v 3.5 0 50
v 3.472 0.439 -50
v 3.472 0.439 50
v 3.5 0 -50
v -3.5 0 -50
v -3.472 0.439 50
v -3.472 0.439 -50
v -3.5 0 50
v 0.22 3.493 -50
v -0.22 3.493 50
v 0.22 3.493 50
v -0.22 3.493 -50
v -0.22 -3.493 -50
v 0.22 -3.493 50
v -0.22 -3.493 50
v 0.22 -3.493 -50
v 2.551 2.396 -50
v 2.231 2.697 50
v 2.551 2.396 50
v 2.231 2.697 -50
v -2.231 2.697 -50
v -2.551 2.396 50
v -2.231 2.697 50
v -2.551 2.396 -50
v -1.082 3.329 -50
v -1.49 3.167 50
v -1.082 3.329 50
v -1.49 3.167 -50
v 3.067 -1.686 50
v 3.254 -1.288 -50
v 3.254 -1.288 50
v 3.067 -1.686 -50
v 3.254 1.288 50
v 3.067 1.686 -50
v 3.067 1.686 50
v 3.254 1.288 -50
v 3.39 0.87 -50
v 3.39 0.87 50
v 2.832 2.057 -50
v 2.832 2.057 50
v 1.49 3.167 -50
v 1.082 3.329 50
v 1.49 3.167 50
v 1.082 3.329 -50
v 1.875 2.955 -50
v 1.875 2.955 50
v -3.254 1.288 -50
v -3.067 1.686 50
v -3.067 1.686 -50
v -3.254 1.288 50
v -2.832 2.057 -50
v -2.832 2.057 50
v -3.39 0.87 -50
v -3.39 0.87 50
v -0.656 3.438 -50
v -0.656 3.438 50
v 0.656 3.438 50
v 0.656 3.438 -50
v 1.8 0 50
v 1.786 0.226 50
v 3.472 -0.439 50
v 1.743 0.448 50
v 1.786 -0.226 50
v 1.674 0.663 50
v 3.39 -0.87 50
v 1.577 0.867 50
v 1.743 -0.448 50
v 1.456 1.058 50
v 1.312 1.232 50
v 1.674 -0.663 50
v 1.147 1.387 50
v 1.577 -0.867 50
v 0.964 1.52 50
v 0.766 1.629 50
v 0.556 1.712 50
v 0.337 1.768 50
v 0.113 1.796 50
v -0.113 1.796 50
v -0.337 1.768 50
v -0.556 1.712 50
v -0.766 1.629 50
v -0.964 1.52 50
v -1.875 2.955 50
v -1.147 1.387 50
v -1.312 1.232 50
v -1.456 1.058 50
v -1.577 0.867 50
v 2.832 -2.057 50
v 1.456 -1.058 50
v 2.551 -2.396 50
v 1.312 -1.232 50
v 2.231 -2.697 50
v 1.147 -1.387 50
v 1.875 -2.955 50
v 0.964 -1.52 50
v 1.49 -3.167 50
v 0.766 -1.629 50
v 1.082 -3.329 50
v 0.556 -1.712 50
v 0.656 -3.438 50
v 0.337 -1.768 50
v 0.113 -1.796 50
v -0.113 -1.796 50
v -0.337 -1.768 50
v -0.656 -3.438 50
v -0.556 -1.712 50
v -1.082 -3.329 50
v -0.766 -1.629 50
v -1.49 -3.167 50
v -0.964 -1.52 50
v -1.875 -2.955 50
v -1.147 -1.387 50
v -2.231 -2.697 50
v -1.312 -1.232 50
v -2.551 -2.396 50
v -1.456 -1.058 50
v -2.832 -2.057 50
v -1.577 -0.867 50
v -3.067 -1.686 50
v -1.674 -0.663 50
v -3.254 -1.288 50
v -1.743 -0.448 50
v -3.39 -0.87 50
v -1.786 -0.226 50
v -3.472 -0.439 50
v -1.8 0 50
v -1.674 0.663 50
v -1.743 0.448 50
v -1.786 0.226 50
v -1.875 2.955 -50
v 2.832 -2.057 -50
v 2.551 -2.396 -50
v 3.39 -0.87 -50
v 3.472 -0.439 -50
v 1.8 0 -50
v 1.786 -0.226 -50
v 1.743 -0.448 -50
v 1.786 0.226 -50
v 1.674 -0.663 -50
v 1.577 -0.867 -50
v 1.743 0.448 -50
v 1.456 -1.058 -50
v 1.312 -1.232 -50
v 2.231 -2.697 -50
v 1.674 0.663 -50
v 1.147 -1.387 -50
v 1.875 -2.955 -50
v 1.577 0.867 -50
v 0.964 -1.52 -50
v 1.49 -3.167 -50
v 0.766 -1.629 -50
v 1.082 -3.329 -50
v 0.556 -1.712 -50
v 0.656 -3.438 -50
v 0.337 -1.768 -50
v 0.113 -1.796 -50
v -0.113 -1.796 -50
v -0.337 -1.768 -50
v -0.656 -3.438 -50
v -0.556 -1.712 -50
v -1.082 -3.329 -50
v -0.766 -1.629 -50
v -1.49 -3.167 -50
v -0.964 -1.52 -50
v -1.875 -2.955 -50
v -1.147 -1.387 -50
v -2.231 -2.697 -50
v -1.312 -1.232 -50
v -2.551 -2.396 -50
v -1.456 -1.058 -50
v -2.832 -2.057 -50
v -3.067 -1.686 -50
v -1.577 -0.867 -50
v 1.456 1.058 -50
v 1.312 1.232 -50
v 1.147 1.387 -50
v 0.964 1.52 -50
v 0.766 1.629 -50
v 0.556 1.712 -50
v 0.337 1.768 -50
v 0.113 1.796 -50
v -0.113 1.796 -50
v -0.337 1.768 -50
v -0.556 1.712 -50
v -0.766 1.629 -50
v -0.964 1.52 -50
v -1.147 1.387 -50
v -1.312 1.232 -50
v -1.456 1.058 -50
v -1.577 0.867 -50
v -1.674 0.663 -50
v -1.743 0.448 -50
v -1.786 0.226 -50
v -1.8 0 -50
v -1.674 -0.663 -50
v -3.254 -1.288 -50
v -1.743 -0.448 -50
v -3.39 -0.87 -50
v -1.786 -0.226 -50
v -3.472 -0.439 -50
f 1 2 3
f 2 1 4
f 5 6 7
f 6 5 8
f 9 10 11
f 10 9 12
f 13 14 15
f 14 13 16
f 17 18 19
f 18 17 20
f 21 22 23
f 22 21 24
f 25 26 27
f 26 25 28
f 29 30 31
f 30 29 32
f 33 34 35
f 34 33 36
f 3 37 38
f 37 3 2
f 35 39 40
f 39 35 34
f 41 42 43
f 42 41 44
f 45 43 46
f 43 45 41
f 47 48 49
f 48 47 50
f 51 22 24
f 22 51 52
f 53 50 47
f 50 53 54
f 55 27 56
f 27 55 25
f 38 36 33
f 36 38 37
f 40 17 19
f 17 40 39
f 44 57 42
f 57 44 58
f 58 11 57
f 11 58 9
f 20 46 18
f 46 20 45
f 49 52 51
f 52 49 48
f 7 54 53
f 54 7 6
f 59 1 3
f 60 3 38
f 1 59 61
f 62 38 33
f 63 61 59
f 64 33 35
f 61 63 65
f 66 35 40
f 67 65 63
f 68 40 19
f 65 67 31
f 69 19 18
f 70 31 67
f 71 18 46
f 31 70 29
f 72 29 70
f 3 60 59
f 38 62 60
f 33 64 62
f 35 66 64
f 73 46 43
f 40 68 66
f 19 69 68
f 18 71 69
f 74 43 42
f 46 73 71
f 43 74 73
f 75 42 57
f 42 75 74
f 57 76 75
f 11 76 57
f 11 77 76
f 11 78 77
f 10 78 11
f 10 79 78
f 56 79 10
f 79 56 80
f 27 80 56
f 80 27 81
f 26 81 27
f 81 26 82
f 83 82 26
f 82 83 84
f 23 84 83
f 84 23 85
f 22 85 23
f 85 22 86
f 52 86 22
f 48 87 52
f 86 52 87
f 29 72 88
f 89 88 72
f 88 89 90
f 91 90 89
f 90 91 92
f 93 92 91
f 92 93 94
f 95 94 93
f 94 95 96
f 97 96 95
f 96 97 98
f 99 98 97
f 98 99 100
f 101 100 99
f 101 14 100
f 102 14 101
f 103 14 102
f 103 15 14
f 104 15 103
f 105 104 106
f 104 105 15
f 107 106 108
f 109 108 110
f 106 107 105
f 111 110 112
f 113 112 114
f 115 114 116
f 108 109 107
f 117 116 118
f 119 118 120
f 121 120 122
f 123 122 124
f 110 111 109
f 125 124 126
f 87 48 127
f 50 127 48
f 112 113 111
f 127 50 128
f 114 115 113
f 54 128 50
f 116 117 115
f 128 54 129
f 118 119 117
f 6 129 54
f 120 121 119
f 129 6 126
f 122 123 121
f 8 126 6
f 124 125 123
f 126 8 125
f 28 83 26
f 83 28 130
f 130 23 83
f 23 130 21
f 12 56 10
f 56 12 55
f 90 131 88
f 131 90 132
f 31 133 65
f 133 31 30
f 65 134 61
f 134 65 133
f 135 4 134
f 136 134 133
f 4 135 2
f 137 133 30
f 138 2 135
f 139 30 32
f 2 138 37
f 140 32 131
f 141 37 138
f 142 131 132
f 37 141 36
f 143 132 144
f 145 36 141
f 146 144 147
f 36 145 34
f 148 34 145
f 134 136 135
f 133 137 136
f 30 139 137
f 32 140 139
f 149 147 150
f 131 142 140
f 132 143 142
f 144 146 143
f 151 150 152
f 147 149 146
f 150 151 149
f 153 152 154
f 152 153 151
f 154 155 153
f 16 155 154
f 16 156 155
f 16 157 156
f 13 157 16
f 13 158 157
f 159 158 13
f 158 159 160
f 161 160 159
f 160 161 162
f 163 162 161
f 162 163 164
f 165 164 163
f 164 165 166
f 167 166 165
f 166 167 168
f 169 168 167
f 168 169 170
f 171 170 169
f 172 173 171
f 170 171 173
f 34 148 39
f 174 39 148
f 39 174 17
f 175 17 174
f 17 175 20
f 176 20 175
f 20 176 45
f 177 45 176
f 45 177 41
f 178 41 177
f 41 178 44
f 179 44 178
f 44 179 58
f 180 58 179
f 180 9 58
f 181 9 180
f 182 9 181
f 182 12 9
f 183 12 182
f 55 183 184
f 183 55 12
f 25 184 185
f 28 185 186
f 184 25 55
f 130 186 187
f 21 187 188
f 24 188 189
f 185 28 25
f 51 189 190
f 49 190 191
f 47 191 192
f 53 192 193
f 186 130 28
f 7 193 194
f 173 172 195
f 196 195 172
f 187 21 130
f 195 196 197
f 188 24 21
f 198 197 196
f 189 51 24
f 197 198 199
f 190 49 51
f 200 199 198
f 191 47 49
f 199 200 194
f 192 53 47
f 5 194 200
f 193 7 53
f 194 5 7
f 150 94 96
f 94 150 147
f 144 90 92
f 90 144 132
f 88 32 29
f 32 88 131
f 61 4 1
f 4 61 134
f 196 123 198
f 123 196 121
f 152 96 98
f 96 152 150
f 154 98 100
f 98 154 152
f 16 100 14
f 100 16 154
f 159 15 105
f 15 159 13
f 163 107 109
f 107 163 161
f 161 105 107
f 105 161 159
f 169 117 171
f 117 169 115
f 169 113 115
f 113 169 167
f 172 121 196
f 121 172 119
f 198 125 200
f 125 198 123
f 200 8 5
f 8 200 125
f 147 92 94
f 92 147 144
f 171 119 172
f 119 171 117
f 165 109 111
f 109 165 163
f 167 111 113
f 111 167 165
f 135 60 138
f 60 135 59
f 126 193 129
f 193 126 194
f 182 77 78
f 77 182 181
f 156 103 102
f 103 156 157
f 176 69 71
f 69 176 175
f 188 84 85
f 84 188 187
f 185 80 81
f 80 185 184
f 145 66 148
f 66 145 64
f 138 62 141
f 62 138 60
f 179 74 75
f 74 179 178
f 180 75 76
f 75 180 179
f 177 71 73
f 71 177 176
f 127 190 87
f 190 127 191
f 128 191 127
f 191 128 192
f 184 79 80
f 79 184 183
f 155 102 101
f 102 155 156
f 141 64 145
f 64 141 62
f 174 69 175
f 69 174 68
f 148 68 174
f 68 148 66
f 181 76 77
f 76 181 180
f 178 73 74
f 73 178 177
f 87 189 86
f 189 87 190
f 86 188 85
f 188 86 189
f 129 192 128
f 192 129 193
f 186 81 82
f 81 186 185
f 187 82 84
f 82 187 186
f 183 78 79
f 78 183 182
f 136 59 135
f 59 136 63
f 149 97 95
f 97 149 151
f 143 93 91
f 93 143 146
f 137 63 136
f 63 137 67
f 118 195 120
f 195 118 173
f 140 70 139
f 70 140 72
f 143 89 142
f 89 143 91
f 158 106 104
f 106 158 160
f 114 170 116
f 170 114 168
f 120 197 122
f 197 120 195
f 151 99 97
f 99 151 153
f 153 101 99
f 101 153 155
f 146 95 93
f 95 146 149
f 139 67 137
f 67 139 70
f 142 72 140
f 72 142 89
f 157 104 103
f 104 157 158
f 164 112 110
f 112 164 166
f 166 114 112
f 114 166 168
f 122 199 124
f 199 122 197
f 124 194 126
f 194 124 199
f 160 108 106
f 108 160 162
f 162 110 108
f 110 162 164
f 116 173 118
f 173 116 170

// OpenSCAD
$fn = 50;


difference() {
	union() {
		translate(v = [0, 0, -50.0000000000]) {
			cylinder(h = 100, r = 3.5000000000);
		}
	}
	union() {
		translate(v = [0, 0, -100.0000000000]) {
			cylinder(h = 200, r = 1.8000000000);
		}
	}
}
